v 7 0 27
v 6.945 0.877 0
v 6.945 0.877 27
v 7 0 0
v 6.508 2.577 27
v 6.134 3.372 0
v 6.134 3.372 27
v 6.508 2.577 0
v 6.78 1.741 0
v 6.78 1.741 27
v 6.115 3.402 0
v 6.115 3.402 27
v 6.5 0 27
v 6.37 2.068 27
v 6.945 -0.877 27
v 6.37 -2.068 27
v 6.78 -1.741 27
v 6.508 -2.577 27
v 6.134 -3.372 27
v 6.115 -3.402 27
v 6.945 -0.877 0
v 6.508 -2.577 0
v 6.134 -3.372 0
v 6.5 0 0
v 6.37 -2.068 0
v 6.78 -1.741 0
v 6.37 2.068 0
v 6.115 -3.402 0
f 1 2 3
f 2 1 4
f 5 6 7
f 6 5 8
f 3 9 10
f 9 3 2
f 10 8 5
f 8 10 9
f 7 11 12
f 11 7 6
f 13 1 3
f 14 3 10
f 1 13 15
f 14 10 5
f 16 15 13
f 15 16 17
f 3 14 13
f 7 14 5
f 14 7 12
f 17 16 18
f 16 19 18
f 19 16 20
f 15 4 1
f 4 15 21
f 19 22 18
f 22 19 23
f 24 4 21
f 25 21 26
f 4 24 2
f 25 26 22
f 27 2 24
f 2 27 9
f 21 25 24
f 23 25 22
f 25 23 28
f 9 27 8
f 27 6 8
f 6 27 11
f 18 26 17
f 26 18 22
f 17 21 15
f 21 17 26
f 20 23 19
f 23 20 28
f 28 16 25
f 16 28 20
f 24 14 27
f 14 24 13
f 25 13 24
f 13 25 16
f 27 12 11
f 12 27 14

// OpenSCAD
$fn = 50;


difference() {
	union() {
		cylinder(h = 27, r = 7.0000000000);
		translate(v = [-13.0000000000, 0, 0]) {
			cylinder(h = 27, r = 7.0000000000);
		}
	}
	union() {
		cylinder(h = 27, r = 3.2500000000);
		cylinder(h = 27, r = 1.8000000000);
		cylinder(h = 27, r = 1.8000000000);
		cylinder(h = 27, r = 1.8000000000);
		translate(v = [-17.5000000000, 0, 0]) {
			hull() {
				translate(v = [-3.7500000000, 0.0000000000, 0]) {
					cylinder(h = 27, r = 7.5000000000);
				}
				translate(v = [3.7500000000, 0.0000000000, 0]) {
					cylinder(h = 27, r = 7.5000000000);
				}
				translate(v = [-3.7500000000, -0.0000000000, 0]) {
					cylinder(h = 27, r = 7.5000000000);
				}
				translate(v = [3.7500000000, -0.0000000000, 0]) {
					cylinder(h = 27, r = 7.5000000000);
				}
			}
		}
		translate(v = [-10.0000000000, 0, 0.0000000000]) {
			cylinder(h = 27, r = 16.5000000000);
		}
	}
}
